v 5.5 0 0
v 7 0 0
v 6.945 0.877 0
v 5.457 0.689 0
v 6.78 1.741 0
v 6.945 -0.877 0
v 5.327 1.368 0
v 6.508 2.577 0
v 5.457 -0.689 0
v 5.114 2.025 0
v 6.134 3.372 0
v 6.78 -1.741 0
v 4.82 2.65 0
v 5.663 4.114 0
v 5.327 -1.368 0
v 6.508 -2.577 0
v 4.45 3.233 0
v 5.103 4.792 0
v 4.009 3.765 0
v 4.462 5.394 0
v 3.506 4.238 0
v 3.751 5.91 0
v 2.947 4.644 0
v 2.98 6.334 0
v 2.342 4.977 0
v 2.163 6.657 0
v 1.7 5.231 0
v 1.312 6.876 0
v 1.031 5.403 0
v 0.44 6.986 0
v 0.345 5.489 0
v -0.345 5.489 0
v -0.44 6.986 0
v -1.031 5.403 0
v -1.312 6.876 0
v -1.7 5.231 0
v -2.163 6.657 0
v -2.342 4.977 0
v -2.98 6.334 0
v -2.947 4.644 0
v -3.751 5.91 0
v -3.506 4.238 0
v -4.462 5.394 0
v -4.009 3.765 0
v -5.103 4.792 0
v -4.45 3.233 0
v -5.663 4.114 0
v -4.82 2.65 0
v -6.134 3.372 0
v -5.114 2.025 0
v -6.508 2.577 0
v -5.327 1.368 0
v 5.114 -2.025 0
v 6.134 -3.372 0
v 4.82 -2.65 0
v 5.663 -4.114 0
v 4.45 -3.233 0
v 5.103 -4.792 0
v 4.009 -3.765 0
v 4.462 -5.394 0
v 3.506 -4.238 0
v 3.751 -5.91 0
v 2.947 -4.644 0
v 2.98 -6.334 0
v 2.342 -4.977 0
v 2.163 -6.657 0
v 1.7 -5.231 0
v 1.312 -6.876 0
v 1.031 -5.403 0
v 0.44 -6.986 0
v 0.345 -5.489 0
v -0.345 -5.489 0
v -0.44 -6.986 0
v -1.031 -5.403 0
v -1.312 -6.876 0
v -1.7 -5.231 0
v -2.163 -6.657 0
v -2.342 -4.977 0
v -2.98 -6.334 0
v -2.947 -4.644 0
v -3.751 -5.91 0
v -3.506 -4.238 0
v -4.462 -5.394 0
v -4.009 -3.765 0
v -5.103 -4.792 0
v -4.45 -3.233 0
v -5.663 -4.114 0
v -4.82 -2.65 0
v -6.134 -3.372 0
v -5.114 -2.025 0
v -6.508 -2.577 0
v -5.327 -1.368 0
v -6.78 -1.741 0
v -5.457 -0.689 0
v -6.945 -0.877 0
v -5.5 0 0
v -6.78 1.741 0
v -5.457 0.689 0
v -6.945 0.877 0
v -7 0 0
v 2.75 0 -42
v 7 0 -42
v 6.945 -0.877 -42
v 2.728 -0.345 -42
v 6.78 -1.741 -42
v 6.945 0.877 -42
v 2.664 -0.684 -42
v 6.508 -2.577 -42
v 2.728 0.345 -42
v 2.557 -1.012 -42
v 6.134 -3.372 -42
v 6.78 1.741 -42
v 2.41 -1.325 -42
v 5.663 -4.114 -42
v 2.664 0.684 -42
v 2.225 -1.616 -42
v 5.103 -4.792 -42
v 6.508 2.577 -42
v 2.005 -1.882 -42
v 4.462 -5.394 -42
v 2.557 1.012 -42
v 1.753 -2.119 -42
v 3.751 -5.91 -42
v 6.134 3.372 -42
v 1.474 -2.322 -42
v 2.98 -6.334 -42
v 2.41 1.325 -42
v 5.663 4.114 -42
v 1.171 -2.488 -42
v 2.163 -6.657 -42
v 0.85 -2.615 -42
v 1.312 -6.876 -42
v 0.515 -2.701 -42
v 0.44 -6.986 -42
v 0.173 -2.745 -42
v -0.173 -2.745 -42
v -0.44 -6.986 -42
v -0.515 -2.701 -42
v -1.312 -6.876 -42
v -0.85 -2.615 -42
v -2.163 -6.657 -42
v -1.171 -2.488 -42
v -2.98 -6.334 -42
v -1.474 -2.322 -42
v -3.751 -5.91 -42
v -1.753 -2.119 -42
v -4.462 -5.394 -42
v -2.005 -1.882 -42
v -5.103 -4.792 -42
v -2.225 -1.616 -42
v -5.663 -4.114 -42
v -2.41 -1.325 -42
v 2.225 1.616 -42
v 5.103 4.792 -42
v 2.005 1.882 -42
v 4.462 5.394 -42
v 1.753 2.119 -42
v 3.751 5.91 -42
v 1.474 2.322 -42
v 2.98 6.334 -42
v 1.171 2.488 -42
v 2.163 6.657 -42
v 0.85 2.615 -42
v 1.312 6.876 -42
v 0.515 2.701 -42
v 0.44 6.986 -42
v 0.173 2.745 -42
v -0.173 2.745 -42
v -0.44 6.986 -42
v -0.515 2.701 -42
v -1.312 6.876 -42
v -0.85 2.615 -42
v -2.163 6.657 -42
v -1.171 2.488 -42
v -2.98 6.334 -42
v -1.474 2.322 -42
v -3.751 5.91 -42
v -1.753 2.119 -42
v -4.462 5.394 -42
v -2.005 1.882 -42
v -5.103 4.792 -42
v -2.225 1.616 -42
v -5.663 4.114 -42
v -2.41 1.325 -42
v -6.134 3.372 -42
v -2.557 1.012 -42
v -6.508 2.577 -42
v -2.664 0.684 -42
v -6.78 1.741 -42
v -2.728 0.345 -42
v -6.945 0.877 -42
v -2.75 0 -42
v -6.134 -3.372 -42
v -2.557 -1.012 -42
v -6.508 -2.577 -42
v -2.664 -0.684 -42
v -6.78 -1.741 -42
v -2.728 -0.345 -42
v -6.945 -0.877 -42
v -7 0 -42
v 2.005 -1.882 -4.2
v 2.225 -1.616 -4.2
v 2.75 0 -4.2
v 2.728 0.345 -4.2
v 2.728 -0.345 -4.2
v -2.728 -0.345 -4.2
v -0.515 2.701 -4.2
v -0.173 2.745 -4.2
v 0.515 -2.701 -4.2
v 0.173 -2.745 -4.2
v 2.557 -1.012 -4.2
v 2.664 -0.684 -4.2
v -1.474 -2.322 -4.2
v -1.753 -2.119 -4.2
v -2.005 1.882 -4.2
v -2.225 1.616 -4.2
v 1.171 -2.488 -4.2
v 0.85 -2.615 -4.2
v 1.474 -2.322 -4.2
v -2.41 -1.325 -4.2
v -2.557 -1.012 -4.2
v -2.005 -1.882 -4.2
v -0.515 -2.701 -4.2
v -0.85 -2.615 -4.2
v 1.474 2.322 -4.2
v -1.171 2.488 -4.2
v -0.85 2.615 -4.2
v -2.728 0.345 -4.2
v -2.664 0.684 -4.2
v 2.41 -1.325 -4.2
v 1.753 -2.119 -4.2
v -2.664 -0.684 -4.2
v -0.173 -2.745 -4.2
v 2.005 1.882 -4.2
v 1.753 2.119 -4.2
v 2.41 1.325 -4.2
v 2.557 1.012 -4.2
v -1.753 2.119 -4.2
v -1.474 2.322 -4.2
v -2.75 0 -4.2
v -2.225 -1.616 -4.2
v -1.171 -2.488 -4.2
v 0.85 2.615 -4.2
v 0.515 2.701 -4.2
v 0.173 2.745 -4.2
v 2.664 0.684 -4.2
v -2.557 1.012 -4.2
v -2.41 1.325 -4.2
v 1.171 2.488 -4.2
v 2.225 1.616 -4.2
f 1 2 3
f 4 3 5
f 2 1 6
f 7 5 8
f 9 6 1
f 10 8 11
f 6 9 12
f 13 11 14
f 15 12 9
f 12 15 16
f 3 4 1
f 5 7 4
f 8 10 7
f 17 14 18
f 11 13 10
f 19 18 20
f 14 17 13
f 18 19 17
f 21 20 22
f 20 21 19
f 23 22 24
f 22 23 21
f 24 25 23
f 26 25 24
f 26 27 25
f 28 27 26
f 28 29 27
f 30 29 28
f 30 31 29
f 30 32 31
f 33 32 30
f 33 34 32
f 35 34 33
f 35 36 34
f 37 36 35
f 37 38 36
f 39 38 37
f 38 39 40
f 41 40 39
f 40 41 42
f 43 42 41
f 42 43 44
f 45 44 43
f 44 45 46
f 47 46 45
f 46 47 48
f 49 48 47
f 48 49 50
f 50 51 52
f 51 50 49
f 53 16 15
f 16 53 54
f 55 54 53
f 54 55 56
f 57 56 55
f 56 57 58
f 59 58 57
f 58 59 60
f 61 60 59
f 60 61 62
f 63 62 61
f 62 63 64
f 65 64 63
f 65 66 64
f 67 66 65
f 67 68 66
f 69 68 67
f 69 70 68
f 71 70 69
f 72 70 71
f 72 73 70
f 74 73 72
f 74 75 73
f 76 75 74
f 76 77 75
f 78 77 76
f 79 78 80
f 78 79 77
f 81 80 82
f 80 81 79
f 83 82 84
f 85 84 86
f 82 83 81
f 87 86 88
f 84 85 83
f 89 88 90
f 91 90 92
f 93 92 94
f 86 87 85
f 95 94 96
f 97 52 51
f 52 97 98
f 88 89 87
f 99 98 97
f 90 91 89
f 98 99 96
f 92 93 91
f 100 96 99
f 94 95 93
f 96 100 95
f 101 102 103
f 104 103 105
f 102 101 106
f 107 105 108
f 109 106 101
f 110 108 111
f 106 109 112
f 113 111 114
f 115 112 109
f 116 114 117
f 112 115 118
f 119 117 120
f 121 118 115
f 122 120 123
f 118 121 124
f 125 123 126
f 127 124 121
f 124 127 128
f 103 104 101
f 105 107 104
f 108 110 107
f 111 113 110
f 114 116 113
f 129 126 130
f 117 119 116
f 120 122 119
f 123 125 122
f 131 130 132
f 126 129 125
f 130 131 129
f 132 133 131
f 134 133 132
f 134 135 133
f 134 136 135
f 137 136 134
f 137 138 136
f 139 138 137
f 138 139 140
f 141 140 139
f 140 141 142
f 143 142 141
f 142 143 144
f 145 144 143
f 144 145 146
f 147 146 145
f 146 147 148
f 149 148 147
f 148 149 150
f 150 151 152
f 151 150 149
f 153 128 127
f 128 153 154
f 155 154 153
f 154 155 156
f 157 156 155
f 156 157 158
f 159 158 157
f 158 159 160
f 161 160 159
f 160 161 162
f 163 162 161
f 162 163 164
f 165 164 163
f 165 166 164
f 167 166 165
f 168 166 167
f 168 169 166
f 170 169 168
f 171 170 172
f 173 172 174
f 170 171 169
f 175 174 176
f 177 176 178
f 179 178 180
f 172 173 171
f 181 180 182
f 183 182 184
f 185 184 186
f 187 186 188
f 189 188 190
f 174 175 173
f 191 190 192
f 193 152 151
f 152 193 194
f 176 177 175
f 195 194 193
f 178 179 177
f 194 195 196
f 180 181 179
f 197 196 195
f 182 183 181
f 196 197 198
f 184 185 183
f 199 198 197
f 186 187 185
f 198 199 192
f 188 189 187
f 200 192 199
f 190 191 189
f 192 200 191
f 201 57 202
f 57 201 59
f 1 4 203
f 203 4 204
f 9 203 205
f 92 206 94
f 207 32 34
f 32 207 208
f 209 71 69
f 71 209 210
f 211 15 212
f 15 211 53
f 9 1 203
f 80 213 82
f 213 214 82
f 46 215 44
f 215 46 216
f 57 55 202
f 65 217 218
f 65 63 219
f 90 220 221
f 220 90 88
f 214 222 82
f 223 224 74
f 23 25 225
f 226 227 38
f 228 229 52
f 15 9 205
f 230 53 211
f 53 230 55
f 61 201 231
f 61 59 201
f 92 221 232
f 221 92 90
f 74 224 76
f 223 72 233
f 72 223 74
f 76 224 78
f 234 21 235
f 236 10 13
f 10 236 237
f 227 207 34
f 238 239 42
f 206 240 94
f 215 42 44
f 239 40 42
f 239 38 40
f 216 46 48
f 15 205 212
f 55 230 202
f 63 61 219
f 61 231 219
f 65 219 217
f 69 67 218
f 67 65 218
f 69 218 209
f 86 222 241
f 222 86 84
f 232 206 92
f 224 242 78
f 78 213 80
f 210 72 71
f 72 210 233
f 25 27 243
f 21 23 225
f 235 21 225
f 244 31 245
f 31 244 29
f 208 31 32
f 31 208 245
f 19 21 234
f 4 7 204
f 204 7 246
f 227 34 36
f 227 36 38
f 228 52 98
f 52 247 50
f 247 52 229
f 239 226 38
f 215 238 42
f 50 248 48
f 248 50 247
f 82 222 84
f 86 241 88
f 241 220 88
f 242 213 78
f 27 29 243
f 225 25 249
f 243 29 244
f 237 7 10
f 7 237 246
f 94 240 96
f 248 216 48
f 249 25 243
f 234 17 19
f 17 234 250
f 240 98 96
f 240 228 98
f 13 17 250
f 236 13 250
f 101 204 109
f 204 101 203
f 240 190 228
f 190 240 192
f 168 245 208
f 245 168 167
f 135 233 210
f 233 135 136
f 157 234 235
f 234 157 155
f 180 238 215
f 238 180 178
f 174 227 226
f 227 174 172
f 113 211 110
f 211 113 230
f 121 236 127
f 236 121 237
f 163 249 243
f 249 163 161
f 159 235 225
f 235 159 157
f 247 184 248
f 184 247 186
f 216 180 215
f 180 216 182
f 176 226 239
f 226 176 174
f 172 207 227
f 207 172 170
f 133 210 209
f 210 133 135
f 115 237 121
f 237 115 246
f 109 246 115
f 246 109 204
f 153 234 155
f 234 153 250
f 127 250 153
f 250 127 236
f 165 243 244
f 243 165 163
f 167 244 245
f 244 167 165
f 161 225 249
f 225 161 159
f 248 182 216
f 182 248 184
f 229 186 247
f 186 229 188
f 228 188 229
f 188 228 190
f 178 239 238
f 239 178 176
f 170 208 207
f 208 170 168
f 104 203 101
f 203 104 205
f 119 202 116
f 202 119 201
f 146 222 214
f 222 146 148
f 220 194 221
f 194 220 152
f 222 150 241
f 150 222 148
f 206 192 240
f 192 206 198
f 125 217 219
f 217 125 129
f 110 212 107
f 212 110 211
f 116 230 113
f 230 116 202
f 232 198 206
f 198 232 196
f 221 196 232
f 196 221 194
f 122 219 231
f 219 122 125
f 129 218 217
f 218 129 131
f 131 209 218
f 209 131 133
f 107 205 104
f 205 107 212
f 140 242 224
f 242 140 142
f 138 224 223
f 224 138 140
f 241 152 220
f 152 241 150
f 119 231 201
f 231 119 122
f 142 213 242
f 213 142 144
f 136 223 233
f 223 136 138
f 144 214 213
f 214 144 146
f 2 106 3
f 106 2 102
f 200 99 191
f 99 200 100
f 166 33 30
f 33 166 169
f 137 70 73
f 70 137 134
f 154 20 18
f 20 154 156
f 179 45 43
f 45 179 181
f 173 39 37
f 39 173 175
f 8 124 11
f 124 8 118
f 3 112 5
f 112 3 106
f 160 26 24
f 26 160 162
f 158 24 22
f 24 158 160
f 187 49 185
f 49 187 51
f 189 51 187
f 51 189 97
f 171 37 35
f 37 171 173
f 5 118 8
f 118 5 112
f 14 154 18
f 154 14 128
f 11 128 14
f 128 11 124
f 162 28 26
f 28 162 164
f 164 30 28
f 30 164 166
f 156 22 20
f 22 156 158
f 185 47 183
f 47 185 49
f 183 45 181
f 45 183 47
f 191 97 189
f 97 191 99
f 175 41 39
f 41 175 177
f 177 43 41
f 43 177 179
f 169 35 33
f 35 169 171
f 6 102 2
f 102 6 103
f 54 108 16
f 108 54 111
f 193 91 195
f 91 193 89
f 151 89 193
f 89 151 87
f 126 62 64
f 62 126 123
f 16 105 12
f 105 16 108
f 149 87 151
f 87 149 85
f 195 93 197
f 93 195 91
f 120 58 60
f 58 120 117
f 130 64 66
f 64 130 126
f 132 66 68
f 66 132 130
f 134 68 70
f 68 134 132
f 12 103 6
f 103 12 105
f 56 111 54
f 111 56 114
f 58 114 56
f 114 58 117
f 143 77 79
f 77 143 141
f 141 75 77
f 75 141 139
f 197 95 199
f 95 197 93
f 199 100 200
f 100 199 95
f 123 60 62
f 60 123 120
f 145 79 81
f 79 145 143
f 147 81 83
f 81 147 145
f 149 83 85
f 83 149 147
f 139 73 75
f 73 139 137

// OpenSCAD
$fn = 50;


difference() {
	union() {
		translate(v = [0, 0, -42.0000000000]) {
			cylinder(h = 42, r = 7.0000000000);
		}
		cylinder(h = 0, r = 16.0000000000);
	}
	union() {
		translate(v = [0, 0, 0]) {
			rotate(a = [0, 0, 0]) {
				difference() {
					union() {
						#translate(v = [0, 0, -42.0000000000]) {
							cylinder(h = 42, r = 2.2500000000);
						}
						#translate(v = [0, 0, -4.2000000000]) {
							cylinder(h = 4.2000000000, r1 = 2.7500000000, r2 = 5.5000000000);
						}
						#translate(v = [0, 0, -42.0000000000]) {
							cylinder(h = 42, r = 2.7500000000);
						}
						#translate(v = [0, 0, -42.0000000000]) {
							cylinder(h = 42, r = 2.2500000000);
						}
					}
					union();
				}
			}
		}
	}
}
